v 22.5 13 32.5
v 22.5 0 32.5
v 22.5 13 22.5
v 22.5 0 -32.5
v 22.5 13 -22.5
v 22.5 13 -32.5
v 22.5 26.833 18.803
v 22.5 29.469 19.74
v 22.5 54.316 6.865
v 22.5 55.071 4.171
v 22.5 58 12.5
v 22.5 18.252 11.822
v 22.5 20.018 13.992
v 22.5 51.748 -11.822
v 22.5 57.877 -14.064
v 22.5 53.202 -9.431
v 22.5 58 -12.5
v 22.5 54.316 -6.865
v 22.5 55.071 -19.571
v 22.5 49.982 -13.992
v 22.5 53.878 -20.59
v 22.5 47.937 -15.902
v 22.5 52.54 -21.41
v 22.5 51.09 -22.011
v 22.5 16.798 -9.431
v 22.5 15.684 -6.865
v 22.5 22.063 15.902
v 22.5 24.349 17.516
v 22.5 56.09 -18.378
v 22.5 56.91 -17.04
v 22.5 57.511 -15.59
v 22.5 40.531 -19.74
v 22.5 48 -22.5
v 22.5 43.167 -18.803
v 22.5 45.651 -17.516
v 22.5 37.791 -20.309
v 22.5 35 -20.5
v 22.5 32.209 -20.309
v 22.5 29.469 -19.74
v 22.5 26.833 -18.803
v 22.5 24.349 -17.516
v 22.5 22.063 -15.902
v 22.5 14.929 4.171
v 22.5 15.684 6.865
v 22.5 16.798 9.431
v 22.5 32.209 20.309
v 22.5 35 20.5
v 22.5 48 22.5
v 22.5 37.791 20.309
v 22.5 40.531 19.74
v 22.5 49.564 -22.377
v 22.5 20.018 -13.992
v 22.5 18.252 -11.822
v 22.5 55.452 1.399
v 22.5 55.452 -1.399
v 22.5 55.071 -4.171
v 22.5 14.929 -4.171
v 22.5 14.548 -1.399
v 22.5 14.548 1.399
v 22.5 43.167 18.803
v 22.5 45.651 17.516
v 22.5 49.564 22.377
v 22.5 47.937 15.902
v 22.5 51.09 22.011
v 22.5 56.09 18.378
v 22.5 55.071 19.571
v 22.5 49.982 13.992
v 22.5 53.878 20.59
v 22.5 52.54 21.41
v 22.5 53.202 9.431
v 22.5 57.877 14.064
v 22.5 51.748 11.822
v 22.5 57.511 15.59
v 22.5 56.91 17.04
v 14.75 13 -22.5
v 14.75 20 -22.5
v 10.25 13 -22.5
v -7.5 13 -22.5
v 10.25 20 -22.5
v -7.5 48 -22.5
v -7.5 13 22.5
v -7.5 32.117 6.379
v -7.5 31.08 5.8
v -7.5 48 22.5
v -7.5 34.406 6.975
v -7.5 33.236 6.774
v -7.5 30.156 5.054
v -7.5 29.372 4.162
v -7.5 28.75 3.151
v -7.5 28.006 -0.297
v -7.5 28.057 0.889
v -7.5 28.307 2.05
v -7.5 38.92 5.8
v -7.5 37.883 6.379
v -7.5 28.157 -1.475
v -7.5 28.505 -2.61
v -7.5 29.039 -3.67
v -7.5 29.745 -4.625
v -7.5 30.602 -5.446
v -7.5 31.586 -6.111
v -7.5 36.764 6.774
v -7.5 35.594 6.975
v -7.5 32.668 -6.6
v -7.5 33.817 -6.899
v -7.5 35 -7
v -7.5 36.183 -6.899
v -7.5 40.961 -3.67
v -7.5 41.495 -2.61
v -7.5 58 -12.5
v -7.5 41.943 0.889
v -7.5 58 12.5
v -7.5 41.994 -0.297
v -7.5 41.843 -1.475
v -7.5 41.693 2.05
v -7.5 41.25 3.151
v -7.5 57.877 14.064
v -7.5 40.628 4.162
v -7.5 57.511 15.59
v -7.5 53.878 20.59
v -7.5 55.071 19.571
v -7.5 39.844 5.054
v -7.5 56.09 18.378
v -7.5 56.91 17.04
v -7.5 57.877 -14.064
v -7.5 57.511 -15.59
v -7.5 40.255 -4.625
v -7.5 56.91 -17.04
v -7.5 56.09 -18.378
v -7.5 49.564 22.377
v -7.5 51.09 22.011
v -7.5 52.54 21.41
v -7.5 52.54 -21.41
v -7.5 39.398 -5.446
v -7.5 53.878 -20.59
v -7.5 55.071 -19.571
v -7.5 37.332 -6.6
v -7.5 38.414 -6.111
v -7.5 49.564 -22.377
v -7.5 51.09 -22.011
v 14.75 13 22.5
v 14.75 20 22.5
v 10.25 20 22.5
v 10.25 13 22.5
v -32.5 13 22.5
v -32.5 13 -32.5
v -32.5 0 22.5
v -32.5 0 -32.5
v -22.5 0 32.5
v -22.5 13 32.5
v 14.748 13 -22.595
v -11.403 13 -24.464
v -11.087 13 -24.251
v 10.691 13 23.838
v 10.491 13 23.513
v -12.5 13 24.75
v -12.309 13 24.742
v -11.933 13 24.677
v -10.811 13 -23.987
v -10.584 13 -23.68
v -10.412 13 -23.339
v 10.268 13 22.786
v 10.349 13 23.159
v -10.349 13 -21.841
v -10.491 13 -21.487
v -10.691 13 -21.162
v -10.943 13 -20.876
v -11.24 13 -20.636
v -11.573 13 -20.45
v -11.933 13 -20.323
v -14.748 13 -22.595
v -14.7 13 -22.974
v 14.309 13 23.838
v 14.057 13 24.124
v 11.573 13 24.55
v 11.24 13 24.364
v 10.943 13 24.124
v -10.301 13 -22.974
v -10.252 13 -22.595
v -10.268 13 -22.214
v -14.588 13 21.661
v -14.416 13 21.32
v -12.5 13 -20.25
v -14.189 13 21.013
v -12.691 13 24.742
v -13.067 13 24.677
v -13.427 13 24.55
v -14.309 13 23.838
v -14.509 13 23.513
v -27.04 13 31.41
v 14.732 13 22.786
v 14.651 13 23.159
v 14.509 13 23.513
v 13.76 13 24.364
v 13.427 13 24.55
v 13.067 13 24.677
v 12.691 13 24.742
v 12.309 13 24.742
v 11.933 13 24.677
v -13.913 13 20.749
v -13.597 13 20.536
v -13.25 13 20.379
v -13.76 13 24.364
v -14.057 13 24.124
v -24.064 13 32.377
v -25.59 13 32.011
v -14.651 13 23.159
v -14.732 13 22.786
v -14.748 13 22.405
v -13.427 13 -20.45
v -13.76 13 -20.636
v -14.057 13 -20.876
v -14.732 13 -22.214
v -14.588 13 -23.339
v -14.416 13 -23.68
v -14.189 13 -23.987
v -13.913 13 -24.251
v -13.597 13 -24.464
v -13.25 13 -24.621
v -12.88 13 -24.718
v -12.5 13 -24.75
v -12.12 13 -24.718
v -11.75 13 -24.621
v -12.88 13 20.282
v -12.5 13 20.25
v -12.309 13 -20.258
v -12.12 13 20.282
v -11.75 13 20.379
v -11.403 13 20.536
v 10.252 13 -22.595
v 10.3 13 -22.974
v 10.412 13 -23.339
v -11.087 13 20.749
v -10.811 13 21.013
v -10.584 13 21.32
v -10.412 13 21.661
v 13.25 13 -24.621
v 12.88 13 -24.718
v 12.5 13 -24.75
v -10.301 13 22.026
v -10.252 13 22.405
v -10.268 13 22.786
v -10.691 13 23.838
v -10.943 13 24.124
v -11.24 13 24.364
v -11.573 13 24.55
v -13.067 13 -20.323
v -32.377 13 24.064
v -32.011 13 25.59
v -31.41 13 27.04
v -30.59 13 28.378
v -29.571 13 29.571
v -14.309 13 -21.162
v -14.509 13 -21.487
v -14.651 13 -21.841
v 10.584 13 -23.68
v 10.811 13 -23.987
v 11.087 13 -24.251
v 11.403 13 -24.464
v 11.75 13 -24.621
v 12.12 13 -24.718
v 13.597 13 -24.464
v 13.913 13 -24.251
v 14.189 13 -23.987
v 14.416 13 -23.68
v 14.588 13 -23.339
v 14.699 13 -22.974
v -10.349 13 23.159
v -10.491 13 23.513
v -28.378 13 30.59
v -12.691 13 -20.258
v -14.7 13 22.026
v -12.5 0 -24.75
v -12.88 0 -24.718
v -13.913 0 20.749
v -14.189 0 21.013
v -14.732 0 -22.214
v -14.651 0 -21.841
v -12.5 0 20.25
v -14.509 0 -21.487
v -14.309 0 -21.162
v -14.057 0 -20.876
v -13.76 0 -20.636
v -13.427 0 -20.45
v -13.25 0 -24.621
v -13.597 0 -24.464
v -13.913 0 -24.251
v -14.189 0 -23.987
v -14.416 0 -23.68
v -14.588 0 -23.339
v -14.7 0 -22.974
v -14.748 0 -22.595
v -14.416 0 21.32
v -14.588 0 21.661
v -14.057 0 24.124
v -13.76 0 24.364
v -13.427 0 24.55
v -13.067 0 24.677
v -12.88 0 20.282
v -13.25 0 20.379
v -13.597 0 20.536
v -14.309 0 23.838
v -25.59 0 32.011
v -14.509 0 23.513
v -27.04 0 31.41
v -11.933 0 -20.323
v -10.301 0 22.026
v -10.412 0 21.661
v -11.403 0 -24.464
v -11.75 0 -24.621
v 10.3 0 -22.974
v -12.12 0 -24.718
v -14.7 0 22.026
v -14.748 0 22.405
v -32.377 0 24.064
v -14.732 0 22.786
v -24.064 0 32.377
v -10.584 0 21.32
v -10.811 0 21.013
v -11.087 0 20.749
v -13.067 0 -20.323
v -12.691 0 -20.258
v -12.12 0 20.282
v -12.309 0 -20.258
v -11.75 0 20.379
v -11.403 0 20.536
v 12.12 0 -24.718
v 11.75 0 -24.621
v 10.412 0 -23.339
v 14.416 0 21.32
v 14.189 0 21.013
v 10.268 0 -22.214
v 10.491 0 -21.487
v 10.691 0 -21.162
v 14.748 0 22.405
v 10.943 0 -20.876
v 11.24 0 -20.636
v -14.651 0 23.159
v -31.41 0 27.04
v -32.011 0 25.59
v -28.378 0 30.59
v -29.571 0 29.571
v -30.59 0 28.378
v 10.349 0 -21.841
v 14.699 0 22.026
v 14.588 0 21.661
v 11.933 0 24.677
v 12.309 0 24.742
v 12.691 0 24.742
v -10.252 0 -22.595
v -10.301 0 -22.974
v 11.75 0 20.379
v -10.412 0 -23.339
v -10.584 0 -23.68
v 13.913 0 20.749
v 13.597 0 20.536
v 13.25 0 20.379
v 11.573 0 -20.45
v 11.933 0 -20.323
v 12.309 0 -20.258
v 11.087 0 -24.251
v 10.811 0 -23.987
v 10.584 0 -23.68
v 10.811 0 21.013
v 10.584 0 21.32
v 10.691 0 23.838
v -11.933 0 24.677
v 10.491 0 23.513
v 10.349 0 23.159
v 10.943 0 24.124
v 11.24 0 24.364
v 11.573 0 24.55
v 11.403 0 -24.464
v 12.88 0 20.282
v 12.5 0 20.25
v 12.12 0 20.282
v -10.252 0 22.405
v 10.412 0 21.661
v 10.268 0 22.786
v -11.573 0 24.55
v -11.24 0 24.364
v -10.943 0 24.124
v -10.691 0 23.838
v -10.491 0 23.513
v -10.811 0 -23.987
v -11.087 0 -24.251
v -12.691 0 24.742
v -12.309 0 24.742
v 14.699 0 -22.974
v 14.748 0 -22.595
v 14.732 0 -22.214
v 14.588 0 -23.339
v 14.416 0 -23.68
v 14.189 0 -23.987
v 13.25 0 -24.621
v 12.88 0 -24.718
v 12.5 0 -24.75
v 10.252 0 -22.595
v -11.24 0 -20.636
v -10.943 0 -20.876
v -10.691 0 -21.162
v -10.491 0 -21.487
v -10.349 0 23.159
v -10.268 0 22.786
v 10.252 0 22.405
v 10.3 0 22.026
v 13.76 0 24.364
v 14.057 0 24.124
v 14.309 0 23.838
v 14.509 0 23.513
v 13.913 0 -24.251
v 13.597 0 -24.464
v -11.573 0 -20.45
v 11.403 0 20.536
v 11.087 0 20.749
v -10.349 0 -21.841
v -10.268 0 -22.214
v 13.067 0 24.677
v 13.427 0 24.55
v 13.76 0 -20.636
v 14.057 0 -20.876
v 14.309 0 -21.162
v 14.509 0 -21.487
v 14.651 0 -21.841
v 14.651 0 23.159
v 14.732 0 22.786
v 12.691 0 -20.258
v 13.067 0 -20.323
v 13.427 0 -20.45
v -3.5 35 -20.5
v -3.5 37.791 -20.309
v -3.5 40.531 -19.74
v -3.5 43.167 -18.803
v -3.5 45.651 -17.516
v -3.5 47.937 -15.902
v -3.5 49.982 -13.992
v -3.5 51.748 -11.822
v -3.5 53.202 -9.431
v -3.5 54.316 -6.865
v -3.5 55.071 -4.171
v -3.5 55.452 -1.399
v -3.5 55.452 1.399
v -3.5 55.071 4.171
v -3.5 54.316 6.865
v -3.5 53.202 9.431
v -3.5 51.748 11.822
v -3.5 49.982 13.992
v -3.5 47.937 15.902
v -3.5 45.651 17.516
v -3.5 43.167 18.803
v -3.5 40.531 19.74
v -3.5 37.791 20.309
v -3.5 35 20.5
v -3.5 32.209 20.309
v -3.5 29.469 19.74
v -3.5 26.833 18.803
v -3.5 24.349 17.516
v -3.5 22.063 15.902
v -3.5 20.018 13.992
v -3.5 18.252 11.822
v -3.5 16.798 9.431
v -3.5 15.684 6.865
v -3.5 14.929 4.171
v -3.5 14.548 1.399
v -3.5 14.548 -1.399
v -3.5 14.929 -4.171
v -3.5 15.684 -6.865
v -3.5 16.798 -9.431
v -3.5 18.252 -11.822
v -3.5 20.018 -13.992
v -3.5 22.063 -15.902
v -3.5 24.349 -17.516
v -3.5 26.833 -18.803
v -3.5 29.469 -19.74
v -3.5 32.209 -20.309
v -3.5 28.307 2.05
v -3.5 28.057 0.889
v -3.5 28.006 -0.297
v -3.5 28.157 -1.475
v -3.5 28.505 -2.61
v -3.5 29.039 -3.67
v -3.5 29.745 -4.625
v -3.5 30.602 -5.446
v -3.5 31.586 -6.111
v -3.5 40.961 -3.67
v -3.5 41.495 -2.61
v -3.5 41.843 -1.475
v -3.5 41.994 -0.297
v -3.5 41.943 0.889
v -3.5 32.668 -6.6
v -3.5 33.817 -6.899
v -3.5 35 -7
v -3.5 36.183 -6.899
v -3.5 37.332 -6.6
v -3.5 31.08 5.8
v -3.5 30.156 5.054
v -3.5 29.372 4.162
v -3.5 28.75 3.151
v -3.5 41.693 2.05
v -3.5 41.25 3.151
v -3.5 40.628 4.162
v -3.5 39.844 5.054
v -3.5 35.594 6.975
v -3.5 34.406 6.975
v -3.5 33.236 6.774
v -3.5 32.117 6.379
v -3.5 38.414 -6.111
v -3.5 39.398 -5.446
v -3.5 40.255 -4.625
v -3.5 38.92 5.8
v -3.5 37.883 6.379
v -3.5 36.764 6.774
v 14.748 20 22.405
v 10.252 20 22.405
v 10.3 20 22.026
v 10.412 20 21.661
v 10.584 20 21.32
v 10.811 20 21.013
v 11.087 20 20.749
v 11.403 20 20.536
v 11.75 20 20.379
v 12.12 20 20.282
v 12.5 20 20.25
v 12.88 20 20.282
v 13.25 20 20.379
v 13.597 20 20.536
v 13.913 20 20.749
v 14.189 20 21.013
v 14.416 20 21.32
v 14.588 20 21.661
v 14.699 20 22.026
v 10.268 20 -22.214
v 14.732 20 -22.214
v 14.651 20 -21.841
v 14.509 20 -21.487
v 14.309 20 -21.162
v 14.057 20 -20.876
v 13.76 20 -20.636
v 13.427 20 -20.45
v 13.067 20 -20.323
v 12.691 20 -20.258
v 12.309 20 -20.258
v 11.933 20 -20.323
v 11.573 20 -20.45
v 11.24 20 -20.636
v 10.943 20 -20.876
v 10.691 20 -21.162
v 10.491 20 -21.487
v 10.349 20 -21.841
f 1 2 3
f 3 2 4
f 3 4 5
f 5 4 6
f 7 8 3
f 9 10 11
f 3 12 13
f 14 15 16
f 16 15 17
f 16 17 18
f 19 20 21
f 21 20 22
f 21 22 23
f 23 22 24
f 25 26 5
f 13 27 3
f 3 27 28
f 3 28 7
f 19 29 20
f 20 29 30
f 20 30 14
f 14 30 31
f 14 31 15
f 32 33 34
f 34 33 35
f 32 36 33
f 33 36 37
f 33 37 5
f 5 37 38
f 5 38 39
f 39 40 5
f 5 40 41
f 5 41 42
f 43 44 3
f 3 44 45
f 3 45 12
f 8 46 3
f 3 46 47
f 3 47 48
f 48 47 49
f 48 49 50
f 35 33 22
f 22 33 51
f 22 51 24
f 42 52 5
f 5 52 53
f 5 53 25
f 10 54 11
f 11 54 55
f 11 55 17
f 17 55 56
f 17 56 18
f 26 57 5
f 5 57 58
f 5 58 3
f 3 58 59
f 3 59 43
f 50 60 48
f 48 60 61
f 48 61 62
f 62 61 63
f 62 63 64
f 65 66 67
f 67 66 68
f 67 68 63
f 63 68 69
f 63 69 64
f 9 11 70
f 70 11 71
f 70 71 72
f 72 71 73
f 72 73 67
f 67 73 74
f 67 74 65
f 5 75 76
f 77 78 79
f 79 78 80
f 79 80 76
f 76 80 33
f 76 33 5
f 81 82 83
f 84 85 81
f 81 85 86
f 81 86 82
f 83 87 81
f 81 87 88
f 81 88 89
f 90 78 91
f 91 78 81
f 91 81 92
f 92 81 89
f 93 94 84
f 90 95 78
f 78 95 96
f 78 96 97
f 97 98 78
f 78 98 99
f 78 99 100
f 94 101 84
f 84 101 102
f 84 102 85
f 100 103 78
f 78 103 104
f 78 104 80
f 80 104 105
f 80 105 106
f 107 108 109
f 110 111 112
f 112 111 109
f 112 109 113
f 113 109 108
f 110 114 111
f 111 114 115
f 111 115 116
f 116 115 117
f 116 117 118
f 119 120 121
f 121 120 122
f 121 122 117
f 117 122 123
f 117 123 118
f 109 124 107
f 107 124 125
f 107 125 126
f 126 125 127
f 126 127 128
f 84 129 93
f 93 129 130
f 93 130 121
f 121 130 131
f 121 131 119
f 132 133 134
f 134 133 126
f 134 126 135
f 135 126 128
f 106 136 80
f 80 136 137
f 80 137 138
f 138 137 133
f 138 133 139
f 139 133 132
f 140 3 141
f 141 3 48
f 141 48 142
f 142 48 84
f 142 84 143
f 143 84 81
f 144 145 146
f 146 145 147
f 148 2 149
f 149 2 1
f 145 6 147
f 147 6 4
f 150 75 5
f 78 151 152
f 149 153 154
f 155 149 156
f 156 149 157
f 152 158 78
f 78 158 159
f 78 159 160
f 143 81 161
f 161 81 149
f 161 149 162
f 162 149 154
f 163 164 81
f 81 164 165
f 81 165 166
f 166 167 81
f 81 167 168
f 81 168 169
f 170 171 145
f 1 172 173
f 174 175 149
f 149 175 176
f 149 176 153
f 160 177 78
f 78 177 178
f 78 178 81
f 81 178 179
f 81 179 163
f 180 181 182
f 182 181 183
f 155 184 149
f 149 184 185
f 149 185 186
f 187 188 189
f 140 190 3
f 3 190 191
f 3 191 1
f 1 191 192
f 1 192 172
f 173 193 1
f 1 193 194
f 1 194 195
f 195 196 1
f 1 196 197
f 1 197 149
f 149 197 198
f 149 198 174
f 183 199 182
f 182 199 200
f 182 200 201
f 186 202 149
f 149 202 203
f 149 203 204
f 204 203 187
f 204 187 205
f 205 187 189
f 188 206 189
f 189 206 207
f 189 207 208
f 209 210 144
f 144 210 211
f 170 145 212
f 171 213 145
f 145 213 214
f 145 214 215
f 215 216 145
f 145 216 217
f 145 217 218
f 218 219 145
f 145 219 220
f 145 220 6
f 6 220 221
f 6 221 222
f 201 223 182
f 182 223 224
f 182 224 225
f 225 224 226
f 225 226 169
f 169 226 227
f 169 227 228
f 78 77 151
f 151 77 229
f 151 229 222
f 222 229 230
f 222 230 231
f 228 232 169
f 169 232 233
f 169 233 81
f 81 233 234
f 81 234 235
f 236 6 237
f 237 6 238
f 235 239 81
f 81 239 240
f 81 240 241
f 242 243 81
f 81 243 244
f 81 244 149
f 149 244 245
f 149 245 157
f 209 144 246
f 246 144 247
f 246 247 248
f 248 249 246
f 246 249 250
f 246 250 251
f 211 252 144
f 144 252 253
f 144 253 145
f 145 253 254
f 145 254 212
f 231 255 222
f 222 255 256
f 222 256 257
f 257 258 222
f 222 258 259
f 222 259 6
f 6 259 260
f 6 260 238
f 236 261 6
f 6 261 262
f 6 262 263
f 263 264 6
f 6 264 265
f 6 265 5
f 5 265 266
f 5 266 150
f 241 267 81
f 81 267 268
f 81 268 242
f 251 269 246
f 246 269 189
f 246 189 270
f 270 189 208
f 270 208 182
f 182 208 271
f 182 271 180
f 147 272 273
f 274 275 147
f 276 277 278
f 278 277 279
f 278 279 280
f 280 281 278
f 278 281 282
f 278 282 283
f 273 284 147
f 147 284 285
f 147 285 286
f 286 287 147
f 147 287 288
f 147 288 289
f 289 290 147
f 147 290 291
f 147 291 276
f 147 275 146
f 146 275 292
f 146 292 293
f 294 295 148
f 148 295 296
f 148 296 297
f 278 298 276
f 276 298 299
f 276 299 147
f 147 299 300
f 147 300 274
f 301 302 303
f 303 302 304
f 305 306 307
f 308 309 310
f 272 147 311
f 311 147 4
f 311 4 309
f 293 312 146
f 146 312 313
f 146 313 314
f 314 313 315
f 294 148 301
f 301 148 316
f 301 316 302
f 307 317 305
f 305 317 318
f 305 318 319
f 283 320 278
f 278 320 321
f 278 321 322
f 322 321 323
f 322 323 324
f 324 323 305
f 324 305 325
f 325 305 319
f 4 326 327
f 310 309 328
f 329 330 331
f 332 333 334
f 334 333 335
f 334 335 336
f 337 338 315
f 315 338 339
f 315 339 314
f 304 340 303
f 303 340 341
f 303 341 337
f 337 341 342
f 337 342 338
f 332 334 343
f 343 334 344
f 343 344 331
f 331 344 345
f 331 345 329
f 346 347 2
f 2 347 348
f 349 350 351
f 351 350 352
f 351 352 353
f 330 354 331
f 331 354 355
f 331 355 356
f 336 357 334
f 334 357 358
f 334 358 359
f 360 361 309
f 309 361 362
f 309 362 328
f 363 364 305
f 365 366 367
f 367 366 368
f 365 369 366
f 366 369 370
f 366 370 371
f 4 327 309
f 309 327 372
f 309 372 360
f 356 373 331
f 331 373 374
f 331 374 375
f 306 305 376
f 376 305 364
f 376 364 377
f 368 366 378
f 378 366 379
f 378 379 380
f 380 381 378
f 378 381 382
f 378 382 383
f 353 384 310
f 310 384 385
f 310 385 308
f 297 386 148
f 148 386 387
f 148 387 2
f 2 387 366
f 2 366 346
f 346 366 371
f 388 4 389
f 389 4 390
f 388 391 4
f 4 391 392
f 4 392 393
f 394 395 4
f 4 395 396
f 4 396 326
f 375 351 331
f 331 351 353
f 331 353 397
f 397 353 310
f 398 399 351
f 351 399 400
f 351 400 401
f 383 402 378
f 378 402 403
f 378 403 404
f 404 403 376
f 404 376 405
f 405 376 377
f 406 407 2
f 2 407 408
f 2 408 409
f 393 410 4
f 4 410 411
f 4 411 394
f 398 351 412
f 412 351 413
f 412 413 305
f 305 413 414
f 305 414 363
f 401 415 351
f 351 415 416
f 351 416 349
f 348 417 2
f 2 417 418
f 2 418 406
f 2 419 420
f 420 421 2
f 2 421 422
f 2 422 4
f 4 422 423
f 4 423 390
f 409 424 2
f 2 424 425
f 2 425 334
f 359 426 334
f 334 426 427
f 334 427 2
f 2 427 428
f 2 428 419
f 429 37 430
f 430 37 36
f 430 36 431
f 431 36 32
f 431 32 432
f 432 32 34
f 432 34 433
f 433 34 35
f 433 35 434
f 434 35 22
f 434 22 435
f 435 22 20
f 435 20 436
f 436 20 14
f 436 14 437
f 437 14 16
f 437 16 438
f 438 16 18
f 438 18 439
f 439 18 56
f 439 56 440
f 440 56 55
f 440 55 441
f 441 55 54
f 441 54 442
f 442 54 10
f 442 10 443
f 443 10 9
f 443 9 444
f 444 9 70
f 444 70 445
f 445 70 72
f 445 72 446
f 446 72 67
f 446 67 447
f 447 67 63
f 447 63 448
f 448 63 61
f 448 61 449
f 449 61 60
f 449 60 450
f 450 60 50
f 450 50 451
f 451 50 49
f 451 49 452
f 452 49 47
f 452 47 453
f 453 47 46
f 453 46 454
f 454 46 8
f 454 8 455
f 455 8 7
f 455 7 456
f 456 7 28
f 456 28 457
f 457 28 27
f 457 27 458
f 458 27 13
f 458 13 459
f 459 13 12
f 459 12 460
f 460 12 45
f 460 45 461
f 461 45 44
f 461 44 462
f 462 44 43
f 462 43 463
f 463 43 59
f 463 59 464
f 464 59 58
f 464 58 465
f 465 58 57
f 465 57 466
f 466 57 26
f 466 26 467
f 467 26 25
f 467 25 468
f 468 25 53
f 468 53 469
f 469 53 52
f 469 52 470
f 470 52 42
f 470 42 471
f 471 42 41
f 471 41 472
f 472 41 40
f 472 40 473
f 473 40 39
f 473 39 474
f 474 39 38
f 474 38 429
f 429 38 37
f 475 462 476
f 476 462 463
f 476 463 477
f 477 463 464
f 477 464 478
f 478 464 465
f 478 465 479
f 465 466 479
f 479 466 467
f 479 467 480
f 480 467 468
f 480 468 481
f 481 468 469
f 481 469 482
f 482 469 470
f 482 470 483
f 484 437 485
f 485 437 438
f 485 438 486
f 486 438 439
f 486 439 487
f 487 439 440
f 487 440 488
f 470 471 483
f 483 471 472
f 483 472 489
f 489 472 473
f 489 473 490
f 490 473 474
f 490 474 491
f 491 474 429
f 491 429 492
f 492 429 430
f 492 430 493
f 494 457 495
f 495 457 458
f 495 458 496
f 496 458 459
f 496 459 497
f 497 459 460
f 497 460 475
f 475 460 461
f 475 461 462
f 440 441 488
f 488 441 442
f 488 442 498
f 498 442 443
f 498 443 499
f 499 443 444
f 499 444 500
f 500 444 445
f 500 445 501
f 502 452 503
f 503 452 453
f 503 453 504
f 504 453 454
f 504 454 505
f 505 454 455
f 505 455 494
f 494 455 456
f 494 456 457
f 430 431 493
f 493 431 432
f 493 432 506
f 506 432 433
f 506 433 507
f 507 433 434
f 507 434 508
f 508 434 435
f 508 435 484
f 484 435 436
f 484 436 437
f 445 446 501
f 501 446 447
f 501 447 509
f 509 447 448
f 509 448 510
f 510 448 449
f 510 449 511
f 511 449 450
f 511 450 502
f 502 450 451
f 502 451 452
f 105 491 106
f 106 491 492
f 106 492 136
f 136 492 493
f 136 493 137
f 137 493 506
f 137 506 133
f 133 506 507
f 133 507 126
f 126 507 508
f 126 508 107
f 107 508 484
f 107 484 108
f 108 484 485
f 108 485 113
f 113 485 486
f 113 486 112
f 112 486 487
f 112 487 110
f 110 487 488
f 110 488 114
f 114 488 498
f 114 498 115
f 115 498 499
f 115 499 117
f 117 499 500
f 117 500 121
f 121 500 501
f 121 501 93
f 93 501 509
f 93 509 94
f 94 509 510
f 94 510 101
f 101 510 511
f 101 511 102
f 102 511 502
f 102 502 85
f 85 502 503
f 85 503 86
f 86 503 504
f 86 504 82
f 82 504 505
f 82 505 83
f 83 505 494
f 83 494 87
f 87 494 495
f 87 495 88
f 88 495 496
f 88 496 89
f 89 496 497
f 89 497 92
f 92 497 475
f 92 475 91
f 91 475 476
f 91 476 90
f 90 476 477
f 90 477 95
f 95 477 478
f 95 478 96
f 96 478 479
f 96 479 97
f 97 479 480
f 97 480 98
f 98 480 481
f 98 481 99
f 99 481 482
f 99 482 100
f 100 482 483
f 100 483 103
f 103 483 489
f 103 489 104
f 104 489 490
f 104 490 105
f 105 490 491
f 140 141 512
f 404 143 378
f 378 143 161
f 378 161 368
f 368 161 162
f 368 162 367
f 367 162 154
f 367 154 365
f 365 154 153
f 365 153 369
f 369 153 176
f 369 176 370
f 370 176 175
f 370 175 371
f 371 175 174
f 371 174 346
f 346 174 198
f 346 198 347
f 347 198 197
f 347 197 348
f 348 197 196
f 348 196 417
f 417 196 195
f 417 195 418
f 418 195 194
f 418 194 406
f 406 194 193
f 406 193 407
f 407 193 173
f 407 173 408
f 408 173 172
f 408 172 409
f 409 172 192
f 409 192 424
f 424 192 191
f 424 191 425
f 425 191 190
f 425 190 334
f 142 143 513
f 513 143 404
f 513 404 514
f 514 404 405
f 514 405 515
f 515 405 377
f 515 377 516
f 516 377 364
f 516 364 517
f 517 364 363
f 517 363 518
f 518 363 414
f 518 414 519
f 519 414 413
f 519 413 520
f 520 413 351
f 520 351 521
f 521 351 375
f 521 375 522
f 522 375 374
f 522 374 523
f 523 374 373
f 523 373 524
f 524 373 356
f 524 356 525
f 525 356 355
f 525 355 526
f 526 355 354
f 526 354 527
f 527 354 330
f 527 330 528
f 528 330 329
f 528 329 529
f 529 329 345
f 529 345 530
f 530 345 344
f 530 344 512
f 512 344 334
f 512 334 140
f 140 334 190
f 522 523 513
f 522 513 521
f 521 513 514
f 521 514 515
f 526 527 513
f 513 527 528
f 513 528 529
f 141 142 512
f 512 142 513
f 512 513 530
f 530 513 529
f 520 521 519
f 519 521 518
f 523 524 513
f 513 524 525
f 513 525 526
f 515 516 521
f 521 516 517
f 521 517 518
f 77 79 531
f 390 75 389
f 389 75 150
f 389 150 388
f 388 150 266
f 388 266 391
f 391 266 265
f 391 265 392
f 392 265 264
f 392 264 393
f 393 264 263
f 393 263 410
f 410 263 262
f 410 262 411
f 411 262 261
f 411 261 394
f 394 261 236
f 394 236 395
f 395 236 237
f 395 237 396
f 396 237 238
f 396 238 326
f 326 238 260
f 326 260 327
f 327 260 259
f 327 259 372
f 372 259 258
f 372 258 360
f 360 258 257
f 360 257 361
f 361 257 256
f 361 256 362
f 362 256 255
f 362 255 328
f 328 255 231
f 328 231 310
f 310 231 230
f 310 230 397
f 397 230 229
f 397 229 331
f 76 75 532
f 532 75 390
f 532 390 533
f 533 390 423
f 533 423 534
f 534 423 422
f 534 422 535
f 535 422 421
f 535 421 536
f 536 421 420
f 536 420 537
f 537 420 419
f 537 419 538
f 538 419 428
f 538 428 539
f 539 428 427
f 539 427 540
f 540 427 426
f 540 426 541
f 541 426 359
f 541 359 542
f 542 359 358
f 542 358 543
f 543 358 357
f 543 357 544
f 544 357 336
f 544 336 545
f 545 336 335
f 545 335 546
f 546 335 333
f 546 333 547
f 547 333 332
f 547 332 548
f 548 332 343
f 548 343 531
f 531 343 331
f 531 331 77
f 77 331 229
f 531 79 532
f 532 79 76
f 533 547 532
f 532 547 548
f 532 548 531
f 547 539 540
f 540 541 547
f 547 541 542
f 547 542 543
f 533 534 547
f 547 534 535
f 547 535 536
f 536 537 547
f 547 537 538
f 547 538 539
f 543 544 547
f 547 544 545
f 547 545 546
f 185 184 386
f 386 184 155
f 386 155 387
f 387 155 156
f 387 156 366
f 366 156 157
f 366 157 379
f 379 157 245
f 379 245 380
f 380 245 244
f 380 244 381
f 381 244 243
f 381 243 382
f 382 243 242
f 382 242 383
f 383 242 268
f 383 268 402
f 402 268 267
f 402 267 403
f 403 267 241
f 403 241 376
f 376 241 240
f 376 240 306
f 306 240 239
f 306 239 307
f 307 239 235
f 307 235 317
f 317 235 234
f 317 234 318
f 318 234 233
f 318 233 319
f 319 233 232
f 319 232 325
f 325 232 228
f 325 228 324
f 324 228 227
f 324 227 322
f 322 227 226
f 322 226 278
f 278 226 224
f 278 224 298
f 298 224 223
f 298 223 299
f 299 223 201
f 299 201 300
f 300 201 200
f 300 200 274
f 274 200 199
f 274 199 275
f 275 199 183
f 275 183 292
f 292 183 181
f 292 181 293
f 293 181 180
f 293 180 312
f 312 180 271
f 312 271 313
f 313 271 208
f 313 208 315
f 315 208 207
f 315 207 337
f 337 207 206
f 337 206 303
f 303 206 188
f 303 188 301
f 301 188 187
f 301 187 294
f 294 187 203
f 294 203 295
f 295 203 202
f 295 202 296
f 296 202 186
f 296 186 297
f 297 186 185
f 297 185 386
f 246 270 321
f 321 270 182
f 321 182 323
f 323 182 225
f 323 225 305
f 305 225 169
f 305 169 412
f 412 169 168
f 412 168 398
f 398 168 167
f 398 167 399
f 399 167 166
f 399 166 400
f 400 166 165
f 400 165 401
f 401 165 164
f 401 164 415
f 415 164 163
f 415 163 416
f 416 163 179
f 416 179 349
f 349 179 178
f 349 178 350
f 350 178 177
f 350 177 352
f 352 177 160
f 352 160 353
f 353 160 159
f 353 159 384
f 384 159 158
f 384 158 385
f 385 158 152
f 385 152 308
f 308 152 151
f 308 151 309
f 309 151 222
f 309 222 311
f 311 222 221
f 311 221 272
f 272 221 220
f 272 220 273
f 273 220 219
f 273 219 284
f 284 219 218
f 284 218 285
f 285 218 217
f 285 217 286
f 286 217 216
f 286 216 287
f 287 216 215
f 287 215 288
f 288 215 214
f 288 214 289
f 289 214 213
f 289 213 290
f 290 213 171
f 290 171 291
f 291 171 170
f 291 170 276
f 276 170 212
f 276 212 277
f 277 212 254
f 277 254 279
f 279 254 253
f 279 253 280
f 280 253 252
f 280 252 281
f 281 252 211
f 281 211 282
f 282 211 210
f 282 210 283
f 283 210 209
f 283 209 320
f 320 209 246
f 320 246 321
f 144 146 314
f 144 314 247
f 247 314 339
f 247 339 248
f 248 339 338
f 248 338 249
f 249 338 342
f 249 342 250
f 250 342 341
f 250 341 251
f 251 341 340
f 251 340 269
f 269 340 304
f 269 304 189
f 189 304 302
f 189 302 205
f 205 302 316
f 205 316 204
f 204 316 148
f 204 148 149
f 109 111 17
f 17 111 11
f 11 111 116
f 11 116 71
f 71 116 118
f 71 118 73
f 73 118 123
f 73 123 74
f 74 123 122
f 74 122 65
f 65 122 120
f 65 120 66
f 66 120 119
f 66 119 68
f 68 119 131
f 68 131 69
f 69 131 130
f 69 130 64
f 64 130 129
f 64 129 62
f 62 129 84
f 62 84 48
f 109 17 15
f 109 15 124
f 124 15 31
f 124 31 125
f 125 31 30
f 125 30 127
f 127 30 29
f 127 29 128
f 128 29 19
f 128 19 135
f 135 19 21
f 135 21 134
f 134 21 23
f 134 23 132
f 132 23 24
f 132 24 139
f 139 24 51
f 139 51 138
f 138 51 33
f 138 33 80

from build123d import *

# Parameters (mm, degrees)
SKETCH1_W           = 55
SKETCH1_H           = 65
BOSS_EXTRUDE1_DEPTH = 13
SKETCH2_W           = 30
SKETCH2_H           = 45
BOSS_EXTRUDE2_DEPTH = 50
SKETCH5_R           = 20.5
CUT_EXTRUDE1_DEPTH  = 26
SKETCH7_R           = 7
CUT_EXTRUDE2_DEPTH  = 20
SKETCH8_R           = 2.25
CUT_EXTRUDE3_DEPTH  = 20
FILLET2_R           = 10
SKETCH9_W           = 30
SKETCH9_H           = 45
CUT_EXTRUDE4_DEPTH  = 5
FILLET3_R           = 10
FILLET4_R           = 10


with BuildPart() as part:
    # Sketch1 → Boss-Extrude1 (new body)
    with BuildSketch(Plane(origin=(0, 0, 0), x_dir=(1, 0, 0), z_dir=(0, 1, 0))):
        with Locations((-5, 0)):
            Rectangle(SKETCH1_W, SKETCH1_H)
    extrude(amount=BOSS_EXTRUDE1_DEPTH)

    # Sketch2 → Boss-Extrude2 (add)
    with BuildSketch(Plane(origin=(0, 13, 0), x_dir=(1, 0, 0), z_dir=(0, 1, 0))):
        with Locations((7.5, 0)):
            Rectangle(SKETCH2_W, SKETCH2_H)
    extrude(amount=BOSS_EXTRUDE2_DEPTH)

    # Sketch5 → Cut-Extrude1 (cut)
    with BuildSketch(Plane(origin=(22.5, 0, 0), x_dir=(0, 0, -1), z_dir=(1, 0, 0))):
        with Locations((0, 35)):
            Circle(SKETCH5_R)
    extrude(amount=-CUT_EXTRUDE1_DEPTH, mode=Mode.SUBTRACT)

    # Sketch7 → Cut-Extrude2 (cut)
    with BuildSketch(Plane(origin=(-3.5, 0, 0), x_dir=(0, 0, -1), z_dir=(1, 0, 0))):
        with Locations((0, 35)):
            Circle(SKETCH7_R)
    extrude(amount=-CUT_EXTRUDE2_DEPTH, mode=Mode.SUBTRACT)

    # Sketch8 → Cut-Extrude3 (cut)
    with BuildSketch(Plane(origin=(0, 0, 0), x_dir=(-1, 0, 0), z_dir=(0, -1, 0))):
        with Locations(Location((12.5, -22.5, 0), (0, 0, 90))):
            Circle(SKETCH8_R)
        with Locations(Location((12.5, 22.5, 0), (0, 0, 90))):
            Circle(SKETCH8_R)
        with Locations(Location((-12.5, 22.5, 0), (0, 0, 90))):
            Circle(SKETCH8_R)
        with Locations(Location((-12.5, -22.5, 0), (0, 0, 90))):
            Circle(SKETCH8_R)
    extrude(amount=-CUT_EXTRUDE3_DEPTH, mode=Mode.SUBTRACT)

    # Fillet2
    fillet2_edges = [part.edges().sort_by_distance(p)[0] for p in [
        (-32.5, 6.5, 32.5),
    ]]
    fillet(fillet2_edges, radius=FILLET2_R)

    # Sketch9 → Cut-Extrude4 (cut)
    with BuildSketch(Plane(origin=(0, 63, 0), x_dir=(1, 0, 0), z_dir=(0, 1, 0))):
        with Locations((7.5, 0)):
            Rectangle(SKETCH9_W, SKETCH9_H)
    extrude(amount=-CUT_EXTRUDE4_DEPTH, mode=Mode.SUBTRACT)

    # Fillet3
    fillet3_edges = [part.edges().sort_by_distance(p)[0] for p in [
        (7.5, 58, 22.5),
    ]]
    fillet(fillet3_edges, radius=FILLET3_R)

    # Fillet4
    fillet4_edges = [part.edges().sort_by_distance(p)[0] for p in [
        (7.5, 58, -22.5),
    ]]
    fillet(fillet4_edges, radius=FILLET4_R)


solid = part.part
